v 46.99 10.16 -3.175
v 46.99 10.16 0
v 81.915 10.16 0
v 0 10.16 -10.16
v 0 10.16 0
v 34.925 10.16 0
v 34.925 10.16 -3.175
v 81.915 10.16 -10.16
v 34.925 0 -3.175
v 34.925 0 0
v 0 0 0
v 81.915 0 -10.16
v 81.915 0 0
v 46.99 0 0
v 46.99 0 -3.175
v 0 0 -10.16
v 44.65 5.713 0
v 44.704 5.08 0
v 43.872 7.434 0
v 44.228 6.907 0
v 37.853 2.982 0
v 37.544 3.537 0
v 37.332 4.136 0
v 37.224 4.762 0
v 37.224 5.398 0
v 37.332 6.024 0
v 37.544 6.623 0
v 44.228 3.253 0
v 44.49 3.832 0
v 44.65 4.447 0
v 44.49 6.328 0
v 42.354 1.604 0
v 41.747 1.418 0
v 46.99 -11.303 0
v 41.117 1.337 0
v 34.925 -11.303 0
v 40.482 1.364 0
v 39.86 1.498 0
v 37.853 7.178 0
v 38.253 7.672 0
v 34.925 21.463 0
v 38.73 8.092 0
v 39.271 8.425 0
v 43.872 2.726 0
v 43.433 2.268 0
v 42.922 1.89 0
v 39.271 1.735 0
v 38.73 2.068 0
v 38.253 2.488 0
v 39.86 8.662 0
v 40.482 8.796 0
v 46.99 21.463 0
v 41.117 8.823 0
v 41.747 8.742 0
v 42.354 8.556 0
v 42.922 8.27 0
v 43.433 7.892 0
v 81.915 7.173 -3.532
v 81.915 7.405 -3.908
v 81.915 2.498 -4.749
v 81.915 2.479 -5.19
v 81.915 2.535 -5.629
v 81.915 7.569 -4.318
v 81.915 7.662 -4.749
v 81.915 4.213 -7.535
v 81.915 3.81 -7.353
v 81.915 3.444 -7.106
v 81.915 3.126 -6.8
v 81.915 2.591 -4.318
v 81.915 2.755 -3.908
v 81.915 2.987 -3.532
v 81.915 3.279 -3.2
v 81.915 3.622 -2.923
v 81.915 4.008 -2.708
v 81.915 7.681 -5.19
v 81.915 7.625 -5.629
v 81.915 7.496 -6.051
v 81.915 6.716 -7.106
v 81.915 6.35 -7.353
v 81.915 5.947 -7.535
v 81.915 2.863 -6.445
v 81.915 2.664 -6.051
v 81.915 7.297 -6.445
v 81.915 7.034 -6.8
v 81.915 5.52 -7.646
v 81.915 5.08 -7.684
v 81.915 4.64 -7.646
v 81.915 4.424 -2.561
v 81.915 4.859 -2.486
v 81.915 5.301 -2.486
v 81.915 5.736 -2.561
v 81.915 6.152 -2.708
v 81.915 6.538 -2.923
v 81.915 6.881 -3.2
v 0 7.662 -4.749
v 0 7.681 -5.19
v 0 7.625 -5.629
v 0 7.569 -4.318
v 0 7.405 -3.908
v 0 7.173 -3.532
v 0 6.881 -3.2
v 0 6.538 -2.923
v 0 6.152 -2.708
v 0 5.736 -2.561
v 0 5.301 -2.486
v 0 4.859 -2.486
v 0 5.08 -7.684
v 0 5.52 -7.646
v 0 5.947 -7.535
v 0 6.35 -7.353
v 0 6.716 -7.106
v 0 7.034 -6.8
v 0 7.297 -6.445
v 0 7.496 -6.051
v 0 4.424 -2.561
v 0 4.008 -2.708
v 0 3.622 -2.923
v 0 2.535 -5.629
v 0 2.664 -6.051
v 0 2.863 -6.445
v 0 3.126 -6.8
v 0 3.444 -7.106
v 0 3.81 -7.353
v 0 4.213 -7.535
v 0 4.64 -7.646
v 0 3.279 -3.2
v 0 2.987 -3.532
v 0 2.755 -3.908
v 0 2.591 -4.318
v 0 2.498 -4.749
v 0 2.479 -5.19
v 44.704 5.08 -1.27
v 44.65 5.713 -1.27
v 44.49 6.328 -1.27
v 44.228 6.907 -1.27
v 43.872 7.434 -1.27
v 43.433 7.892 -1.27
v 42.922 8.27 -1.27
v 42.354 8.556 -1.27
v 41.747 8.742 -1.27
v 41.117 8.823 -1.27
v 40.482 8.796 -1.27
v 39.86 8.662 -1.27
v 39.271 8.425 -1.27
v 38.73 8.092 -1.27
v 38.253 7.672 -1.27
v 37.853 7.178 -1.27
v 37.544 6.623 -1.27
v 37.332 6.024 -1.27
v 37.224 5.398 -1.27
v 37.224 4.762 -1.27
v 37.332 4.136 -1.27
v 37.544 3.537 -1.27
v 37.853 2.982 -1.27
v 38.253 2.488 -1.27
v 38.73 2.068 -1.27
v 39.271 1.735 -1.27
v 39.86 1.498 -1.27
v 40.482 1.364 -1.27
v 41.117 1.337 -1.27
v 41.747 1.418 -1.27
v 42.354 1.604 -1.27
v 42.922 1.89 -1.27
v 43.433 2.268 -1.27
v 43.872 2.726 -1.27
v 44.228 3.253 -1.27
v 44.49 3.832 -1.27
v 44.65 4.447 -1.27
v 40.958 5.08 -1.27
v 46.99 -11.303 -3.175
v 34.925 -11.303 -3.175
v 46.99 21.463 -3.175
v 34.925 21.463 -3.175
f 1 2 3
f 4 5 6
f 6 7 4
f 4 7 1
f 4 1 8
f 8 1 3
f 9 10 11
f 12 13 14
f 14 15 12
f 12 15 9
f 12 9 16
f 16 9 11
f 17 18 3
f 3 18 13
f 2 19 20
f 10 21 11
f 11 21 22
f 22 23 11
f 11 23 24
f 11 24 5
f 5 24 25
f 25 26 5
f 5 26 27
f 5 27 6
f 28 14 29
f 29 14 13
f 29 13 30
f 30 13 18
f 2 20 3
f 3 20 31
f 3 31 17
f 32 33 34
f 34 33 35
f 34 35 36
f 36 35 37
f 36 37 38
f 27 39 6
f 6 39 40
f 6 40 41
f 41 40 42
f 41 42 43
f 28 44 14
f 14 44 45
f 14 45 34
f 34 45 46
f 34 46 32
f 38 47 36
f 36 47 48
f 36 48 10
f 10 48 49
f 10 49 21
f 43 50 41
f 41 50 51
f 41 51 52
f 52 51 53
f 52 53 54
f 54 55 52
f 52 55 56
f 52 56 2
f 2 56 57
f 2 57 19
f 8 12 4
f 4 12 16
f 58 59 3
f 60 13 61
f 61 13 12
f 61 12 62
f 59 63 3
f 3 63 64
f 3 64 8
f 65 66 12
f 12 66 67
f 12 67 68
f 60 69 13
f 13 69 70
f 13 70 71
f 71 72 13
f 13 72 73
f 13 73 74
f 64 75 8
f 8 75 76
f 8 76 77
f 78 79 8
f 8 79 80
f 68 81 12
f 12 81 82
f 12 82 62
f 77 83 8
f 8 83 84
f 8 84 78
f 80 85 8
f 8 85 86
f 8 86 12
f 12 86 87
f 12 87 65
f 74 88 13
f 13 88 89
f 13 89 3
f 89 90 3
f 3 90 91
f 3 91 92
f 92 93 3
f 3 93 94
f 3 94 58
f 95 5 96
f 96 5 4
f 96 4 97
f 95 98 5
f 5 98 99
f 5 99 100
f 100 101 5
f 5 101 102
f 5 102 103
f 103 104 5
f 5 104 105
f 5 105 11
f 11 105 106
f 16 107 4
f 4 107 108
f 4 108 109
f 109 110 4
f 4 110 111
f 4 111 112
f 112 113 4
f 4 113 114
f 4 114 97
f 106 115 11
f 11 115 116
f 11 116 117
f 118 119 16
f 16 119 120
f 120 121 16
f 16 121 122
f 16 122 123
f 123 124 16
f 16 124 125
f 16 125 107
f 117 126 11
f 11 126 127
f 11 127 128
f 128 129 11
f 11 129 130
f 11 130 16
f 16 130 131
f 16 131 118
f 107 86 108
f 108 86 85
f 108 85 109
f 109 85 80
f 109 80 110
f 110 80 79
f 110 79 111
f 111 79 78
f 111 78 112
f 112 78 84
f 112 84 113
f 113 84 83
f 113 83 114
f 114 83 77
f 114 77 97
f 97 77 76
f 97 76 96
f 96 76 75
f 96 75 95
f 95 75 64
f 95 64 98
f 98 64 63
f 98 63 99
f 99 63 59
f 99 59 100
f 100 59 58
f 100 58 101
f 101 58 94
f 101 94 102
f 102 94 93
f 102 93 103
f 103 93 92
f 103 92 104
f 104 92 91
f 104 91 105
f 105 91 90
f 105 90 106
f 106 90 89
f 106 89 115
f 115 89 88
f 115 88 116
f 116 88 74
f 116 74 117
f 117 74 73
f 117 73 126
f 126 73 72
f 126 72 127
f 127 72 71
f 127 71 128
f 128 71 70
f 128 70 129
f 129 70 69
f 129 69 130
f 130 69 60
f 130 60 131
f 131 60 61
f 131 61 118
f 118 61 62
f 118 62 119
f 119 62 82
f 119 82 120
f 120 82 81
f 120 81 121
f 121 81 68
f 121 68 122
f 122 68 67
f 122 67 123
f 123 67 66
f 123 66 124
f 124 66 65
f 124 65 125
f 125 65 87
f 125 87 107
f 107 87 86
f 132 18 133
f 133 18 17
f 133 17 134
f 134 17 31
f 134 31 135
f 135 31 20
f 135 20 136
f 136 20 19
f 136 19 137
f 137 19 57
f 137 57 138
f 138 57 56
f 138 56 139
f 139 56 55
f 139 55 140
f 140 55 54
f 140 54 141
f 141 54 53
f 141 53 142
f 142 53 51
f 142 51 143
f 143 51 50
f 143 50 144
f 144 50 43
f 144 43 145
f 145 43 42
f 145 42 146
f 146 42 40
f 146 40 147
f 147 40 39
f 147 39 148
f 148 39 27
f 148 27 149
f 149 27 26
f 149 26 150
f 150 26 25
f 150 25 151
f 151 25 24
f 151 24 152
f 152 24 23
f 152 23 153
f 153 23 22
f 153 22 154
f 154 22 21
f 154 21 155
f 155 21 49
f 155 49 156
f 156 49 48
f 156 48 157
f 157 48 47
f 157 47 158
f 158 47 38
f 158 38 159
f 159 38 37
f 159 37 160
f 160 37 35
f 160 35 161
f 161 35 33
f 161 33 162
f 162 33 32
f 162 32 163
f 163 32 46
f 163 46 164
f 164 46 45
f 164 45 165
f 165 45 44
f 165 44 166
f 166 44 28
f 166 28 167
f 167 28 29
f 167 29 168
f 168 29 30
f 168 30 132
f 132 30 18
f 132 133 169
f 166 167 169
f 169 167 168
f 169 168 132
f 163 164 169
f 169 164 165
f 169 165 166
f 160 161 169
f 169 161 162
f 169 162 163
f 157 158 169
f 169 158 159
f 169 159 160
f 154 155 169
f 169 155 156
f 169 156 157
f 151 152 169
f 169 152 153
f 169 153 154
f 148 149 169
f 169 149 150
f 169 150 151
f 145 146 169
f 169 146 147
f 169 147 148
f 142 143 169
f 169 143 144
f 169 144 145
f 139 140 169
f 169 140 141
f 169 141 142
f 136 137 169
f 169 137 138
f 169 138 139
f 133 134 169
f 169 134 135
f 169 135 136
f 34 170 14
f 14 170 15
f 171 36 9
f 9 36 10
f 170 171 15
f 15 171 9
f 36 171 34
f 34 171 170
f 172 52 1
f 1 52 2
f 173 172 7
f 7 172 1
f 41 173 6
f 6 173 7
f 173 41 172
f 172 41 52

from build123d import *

# Parameters (mm, degrees)
SKETCH1_W           = 10.16
SKETCH1_H           = 10.16
BOSS_EXTRUDE1_DEPTH = 81.915
SKETCH10_R          = 2.6035
CUT_EXTRUDE6_DEPTH  = 82.915
SKETCH11_R          = 3.7465
CUT_EXTRUDE7_DEPTH  = 1.27
SKETCH12_W          = 12.065
SKETCH12_H          = 3.175
BOSS_EXTRUDE4_DEPTH = 11.303
SKETCH13_W          = 12.065
SKETCH13_H          = 3.175
BOSS_EXTRUDE5_DEPTH = 11.303


with BuildPart() as part:
    # Sketch1 → Boss-Extrude1 (new body)
    with BuildSketch(Plane(origin=(0, 0, 0), x_dir=(0, 0, -1), z_dir=(1, 0, 0))):
        with Locations((5.08, 5.08)):
            Rectangle(SKETCH1_W, SKETCH1_H)
    extrude(amount=BOSS_EXTRUDE1_DEPTH)

    # Sketch10 → Cut-Extrude6 (cut, through all)
    with BuildSketch(Plane(origin=(81.915, 0, 0), x_dir=(0, 0, -1), z_dir=(1, 0, 0))):
        with Locations((5.08, 5.08)):
            Circle(SKETCH10_R)
    extrude(amount=-CUT_EXTRUDE6_DEPTH, mode=Mode.SUBTRACT)

    # Sketch11 → Cut-Extrude7 (cut)
    with BuildSketch(Plane.XY):
        with Locations((40.9575, 5.08)):
            Circle(SKETCH11_R)
    extrude(amount=-CUT_EXTRUDE7_DEPTH, mode=Mode.SUBTRACT)

    # Sketch12 → Boss-Extrude4 (add)
    with BuildSketch(Plane.XZ):
        with Locations((40.9575, -1.5875)):
            Rectangle(SKETCH12_W, SKETCH12_H)
    extrude(amount=BOSS_EXTRUDE4_DEPTH)

    # Sketch13 → Boss-Extrude5 (add)
    with BuildSketch(Plane(origin=(0, 10.16, 0), x_dir=(1, 0, 0), z_dir=(0, 1, 0))):
        with Locations((40.9575, 1.5875)):
            Rectangle(SKETCH13_W, SKETCH13_H)
    extrude(amount=BOSS_EXTRUDE5_DEPTH)


solid = part.part
